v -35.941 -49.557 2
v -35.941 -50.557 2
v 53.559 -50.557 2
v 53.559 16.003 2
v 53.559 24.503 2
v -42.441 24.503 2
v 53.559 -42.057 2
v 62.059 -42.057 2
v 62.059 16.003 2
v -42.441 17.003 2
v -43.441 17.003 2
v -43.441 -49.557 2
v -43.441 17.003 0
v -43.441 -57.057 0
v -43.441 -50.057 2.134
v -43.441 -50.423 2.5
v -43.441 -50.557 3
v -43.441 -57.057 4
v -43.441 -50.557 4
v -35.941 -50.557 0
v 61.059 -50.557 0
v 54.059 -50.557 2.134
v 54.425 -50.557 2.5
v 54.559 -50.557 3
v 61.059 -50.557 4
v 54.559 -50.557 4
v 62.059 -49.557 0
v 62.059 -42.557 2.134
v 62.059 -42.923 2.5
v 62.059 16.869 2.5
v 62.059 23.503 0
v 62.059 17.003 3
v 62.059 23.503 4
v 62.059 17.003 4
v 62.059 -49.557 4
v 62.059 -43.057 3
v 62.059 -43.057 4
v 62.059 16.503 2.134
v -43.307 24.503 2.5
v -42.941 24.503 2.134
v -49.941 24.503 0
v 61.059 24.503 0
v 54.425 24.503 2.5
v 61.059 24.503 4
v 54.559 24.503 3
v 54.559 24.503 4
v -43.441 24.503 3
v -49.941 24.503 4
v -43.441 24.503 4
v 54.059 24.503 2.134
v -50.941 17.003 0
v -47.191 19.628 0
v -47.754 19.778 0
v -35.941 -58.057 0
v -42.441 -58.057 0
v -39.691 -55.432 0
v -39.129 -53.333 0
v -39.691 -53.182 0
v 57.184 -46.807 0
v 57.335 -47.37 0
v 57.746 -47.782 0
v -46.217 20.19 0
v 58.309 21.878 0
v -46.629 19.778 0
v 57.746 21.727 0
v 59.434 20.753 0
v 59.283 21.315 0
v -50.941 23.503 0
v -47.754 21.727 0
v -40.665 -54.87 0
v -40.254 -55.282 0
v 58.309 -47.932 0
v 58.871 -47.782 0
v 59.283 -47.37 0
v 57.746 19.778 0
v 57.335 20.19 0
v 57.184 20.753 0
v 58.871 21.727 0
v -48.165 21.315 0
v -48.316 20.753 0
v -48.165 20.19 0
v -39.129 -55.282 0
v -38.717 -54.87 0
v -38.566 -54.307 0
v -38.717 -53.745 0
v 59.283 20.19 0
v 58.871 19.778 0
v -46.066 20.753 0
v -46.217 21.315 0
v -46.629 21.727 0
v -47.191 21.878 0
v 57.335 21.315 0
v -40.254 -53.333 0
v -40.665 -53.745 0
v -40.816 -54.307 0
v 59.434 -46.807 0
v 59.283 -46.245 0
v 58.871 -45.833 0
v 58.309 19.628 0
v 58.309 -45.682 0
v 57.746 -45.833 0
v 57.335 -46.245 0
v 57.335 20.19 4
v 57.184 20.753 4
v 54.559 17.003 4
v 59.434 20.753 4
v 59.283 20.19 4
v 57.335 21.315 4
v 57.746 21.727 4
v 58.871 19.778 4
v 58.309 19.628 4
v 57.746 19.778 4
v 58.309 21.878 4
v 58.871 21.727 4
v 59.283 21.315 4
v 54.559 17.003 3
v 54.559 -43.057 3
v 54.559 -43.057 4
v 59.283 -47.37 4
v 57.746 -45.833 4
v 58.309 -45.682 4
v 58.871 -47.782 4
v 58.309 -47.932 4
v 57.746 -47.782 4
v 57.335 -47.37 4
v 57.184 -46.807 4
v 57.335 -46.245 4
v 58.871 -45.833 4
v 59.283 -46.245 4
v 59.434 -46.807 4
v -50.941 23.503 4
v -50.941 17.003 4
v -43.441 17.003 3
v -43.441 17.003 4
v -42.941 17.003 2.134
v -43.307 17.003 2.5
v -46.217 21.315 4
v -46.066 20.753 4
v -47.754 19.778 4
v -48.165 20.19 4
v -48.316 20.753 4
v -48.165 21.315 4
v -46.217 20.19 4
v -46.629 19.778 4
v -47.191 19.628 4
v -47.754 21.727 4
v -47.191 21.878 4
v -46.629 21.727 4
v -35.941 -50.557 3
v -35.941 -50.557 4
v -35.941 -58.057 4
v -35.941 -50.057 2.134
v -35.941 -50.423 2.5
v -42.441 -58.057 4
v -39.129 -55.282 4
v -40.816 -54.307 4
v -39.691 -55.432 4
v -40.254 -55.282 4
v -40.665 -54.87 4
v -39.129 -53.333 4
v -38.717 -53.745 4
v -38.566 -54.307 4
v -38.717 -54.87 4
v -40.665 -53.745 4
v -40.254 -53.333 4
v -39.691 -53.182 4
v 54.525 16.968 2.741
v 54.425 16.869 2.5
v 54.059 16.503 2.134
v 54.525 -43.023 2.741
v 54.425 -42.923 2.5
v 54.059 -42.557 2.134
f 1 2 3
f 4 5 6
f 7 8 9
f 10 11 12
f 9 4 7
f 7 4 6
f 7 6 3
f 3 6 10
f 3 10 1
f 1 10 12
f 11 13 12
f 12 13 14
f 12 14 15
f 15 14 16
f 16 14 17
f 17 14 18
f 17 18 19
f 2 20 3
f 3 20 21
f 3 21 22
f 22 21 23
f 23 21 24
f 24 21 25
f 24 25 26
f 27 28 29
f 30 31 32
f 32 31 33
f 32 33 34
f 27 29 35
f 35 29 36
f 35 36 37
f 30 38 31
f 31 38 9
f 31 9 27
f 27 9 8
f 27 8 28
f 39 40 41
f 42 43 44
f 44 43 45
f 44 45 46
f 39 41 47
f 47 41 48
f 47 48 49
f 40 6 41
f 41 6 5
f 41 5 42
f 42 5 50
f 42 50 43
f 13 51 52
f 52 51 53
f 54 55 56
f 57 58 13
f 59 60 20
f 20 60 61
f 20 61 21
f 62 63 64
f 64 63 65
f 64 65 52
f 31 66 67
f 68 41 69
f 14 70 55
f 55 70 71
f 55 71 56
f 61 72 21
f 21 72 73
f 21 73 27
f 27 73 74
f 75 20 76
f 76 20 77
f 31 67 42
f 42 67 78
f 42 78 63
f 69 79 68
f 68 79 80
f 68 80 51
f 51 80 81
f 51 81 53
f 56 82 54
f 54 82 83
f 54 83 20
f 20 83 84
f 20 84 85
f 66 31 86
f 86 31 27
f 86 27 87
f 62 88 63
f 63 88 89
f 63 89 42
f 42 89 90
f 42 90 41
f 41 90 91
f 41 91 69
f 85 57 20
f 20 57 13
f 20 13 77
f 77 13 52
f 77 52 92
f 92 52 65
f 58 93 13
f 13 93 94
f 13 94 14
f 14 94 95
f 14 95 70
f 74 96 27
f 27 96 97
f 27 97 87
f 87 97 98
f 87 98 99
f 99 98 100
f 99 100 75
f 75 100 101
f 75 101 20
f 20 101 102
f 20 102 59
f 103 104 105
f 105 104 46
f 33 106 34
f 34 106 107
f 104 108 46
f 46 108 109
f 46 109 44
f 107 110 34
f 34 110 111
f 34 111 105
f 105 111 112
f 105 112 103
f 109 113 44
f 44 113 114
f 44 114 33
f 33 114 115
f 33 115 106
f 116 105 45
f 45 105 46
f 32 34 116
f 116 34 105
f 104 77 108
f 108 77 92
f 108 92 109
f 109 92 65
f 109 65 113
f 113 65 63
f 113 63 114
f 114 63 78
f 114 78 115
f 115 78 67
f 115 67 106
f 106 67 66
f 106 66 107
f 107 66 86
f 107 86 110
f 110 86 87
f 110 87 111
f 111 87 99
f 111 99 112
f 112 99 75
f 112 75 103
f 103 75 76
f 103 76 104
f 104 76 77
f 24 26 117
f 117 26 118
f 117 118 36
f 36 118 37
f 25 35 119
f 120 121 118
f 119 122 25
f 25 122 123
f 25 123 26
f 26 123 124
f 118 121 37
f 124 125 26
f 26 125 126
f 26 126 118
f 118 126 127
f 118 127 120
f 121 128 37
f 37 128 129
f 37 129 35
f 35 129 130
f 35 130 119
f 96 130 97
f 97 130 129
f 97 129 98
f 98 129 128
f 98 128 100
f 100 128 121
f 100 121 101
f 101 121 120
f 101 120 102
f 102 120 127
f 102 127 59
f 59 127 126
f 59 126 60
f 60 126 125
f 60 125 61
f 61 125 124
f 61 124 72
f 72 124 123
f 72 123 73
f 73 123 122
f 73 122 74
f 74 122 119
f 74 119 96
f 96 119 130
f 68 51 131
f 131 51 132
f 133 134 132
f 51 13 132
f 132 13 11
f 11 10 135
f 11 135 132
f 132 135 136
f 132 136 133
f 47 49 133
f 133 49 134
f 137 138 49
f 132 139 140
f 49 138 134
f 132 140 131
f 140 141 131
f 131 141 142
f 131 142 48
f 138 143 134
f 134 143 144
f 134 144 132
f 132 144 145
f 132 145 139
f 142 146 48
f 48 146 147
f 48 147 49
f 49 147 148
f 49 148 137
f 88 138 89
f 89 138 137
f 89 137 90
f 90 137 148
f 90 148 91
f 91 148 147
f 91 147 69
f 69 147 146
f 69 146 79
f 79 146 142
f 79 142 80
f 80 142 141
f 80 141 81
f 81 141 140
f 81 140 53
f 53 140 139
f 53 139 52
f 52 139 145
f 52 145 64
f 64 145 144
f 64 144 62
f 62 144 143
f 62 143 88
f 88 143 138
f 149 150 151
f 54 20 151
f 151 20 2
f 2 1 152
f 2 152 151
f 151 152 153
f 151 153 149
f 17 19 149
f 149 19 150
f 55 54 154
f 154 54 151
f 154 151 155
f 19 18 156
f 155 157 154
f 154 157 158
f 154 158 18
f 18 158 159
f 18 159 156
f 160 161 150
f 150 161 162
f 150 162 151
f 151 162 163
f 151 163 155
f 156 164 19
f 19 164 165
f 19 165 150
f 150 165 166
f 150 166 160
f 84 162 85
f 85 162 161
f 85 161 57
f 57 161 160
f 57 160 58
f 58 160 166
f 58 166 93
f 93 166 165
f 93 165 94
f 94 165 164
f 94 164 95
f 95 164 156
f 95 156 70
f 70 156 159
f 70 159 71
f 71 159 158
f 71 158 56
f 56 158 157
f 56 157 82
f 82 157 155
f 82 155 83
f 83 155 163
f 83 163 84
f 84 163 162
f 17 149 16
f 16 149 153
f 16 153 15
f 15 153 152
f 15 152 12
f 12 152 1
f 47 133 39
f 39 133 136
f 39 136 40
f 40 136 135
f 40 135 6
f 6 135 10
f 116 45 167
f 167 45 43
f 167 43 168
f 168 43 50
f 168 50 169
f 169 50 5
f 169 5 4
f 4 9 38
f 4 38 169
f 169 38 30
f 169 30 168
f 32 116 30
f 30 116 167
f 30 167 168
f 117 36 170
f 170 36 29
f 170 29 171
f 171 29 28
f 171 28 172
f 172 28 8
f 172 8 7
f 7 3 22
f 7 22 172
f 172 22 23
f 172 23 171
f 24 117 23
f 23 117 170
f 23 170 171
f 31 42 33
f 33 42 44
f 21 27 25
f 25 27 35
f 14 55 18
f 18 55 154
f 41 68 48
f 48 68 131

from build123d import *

# Parameters (mm, degrees)
SKETCH1_W           = 105.5
SKETCH1_H           = 75.06
BOSS_EXTRUDE1_DEPTH = 2
SKETCH2_W           = 7.5
SKETCH2_H           = 7.5
SKETCH2_R           = 1.125
BOSS_EXTRUDE2_DEPTH = 2
CUT_EXTRUDE1_START  = -4
SKETCH3_R           = 1.125
CUT_EXTRUDE1_DEPTH  = 4
SKETCH4_R           = 1.125
CUT_EXTRUDE2_DEPTH  = 4
SKETCH5_W           = 7.5
SKETCH5_H           = 7.5
BOSS_EXTRUDE3_DEPTH = 2
SKETCH6_R           = 1.125
CUT_EXTRUDE3_DEPTH  = 4
SKETCH7_W           = 7.5
SKETCH7_H           = 7.5
BOSS_EXTRUDE4_DEPTH = 2
SKETCH8_R           = 1.125
CUT_EXTRUDE4_DEPTH  = 4
FILLET2_R           = 1
FILLET3_R           = 1
CHAMFER1_SIZE       = 1


with BuildPart() as part:
    # Sketch1 → Boss-Extrude1 (new body)
    with BuildSketch(Plane.XY):
        with Locations((9.308823529, -13.027464503)):
            Rectangle(SKETCH1_W, SKETCH1_H)
    extrude(amount=BOSS_EXTRUDE1_DEPTH)

    # Sketch2 → Boss-Extrude2 (add)
    # profile 1 of 2: a face of its own
    with BuildSketch(Plane.XY.offset(2)):
        with Locations((58.308823529, -46.807464503)):
            Rectangle(SKETCH2_W, SKETCH2_H)
    # profile 2 of 2: a face of its own
    with BuildSketch(Plane.XY.offset(2)):
        with Locations((58.308823529, 20.752535497)):
            Rectangle(SKETCH2_W, SKETCH2_H)
        with Locations((58.308823529, 20.752535497)):
            Circle(SKETCH2_R, mode=Mode.SUBTRACT)
    extrude(amount=BOSS_EXTRUDE2_DEPTH)

    # Sketch3 → Cut-Extrude1 (cut)
    with BuildSketch(Plane.XY.offset(2).offset(CUT_EXTRUDE1_START)):
        with Locations((58.308823529, 20.752535497)):
            Circle(SKETCH3_R)
    extrude(amount=CUT_EXTRUDE1_DEPTH, mode=Mode.SUBTRACT)

    # Sketch4 → Cut-Extrude2 (cut)
    with BuildSketch(Plane.XY.offset(4)):
        with Locations((58.308823529, -46.807464503)):
            Circle(SKETCH4_R)
    extrude(amount=-CUT_EXTRUDE2_DEPTH, mode=Mode.SUBTRACT)

    # Sketch5 → Boss-Extrude3 (add, symmetric)
    with BuildSketch(Plane.XY.offset(2)):
        with Locations((-47.191176471, 20.752535497)):
            Rectangle(SKETCH5_W, SKETCH5_H)
    extrude(amount=BOSS_EXTRUDE3_DEPTH, both=True)

    # Sketch6 → Cut-Extrude3 (cut)
    with BuildSketch(Plane.XY.offset(4)):
        with Locations((-47.191176471, 20.752535497)):
            Circle(SKETCH6_R)
    extrude(amount=-CUT_EXTRUDE3_DEPTH, mode=Mode.SUBTRACT)

    # Sketch7 → Boss-Extrude4 (add, symmetric)
    with BuildSketch(Plane.XY.offset(2)):
        with Locations((-39.691176471, -54.307464503)):
            Rectangle(SKETCH7_W, SKETCH7_H)
    extrude(amount=BOSS_EXTRUDE4_DEPTH, both=True)

    # Sketch8 → Cut-Extrude4 (cut)
    with BuildSketch(Plane.XY.offset(4)):
        with Locations((-39.691176471, -54.307464503)):
            Circle(SKETCH8_R)
    extrude(amount=-CUT_EXTRUDE4_DEPTH, mode=Mode.SUBTRACT)

    # Fillet2
    fillet2_edges = [part.edges().sort_by_distance(p)[0] for p in [
        (-39.691176471, -50.557464503, 2),
        (-43.441176471, 20.752535497, 2),
    ]]
    fillet(fillet2_edges, radius=FILLET2_R)

    # Fillet3
    fillet3_edges = [part.edges().sort_by_distance(p)[0] for p in [
        (54.558823529, 20.752535497, 2),
        (58.308823529, 17.002535497, 2),
        (54.558823529, -46.807464503, 2),
        (58.308823529, -43.057464503, 2),
    ]]
    fillet(fillet3_edges, radius=FILLET3_R)

    # Chamfer1
    chamfer1_edges = [part.edges().sort_by_distance(p)[0] for p in [
        (-50.941176471, 24.502535497, 2),
        (-43.441176471, -58.057464503, 2),
        (62.058823529, 24.502535497, 2),
        (62.058823529, -50.557464503, 2),
    ]]
    chamfer(chamfer1_edges, length=CHAMFER1_SIZE)


solid = part.part
